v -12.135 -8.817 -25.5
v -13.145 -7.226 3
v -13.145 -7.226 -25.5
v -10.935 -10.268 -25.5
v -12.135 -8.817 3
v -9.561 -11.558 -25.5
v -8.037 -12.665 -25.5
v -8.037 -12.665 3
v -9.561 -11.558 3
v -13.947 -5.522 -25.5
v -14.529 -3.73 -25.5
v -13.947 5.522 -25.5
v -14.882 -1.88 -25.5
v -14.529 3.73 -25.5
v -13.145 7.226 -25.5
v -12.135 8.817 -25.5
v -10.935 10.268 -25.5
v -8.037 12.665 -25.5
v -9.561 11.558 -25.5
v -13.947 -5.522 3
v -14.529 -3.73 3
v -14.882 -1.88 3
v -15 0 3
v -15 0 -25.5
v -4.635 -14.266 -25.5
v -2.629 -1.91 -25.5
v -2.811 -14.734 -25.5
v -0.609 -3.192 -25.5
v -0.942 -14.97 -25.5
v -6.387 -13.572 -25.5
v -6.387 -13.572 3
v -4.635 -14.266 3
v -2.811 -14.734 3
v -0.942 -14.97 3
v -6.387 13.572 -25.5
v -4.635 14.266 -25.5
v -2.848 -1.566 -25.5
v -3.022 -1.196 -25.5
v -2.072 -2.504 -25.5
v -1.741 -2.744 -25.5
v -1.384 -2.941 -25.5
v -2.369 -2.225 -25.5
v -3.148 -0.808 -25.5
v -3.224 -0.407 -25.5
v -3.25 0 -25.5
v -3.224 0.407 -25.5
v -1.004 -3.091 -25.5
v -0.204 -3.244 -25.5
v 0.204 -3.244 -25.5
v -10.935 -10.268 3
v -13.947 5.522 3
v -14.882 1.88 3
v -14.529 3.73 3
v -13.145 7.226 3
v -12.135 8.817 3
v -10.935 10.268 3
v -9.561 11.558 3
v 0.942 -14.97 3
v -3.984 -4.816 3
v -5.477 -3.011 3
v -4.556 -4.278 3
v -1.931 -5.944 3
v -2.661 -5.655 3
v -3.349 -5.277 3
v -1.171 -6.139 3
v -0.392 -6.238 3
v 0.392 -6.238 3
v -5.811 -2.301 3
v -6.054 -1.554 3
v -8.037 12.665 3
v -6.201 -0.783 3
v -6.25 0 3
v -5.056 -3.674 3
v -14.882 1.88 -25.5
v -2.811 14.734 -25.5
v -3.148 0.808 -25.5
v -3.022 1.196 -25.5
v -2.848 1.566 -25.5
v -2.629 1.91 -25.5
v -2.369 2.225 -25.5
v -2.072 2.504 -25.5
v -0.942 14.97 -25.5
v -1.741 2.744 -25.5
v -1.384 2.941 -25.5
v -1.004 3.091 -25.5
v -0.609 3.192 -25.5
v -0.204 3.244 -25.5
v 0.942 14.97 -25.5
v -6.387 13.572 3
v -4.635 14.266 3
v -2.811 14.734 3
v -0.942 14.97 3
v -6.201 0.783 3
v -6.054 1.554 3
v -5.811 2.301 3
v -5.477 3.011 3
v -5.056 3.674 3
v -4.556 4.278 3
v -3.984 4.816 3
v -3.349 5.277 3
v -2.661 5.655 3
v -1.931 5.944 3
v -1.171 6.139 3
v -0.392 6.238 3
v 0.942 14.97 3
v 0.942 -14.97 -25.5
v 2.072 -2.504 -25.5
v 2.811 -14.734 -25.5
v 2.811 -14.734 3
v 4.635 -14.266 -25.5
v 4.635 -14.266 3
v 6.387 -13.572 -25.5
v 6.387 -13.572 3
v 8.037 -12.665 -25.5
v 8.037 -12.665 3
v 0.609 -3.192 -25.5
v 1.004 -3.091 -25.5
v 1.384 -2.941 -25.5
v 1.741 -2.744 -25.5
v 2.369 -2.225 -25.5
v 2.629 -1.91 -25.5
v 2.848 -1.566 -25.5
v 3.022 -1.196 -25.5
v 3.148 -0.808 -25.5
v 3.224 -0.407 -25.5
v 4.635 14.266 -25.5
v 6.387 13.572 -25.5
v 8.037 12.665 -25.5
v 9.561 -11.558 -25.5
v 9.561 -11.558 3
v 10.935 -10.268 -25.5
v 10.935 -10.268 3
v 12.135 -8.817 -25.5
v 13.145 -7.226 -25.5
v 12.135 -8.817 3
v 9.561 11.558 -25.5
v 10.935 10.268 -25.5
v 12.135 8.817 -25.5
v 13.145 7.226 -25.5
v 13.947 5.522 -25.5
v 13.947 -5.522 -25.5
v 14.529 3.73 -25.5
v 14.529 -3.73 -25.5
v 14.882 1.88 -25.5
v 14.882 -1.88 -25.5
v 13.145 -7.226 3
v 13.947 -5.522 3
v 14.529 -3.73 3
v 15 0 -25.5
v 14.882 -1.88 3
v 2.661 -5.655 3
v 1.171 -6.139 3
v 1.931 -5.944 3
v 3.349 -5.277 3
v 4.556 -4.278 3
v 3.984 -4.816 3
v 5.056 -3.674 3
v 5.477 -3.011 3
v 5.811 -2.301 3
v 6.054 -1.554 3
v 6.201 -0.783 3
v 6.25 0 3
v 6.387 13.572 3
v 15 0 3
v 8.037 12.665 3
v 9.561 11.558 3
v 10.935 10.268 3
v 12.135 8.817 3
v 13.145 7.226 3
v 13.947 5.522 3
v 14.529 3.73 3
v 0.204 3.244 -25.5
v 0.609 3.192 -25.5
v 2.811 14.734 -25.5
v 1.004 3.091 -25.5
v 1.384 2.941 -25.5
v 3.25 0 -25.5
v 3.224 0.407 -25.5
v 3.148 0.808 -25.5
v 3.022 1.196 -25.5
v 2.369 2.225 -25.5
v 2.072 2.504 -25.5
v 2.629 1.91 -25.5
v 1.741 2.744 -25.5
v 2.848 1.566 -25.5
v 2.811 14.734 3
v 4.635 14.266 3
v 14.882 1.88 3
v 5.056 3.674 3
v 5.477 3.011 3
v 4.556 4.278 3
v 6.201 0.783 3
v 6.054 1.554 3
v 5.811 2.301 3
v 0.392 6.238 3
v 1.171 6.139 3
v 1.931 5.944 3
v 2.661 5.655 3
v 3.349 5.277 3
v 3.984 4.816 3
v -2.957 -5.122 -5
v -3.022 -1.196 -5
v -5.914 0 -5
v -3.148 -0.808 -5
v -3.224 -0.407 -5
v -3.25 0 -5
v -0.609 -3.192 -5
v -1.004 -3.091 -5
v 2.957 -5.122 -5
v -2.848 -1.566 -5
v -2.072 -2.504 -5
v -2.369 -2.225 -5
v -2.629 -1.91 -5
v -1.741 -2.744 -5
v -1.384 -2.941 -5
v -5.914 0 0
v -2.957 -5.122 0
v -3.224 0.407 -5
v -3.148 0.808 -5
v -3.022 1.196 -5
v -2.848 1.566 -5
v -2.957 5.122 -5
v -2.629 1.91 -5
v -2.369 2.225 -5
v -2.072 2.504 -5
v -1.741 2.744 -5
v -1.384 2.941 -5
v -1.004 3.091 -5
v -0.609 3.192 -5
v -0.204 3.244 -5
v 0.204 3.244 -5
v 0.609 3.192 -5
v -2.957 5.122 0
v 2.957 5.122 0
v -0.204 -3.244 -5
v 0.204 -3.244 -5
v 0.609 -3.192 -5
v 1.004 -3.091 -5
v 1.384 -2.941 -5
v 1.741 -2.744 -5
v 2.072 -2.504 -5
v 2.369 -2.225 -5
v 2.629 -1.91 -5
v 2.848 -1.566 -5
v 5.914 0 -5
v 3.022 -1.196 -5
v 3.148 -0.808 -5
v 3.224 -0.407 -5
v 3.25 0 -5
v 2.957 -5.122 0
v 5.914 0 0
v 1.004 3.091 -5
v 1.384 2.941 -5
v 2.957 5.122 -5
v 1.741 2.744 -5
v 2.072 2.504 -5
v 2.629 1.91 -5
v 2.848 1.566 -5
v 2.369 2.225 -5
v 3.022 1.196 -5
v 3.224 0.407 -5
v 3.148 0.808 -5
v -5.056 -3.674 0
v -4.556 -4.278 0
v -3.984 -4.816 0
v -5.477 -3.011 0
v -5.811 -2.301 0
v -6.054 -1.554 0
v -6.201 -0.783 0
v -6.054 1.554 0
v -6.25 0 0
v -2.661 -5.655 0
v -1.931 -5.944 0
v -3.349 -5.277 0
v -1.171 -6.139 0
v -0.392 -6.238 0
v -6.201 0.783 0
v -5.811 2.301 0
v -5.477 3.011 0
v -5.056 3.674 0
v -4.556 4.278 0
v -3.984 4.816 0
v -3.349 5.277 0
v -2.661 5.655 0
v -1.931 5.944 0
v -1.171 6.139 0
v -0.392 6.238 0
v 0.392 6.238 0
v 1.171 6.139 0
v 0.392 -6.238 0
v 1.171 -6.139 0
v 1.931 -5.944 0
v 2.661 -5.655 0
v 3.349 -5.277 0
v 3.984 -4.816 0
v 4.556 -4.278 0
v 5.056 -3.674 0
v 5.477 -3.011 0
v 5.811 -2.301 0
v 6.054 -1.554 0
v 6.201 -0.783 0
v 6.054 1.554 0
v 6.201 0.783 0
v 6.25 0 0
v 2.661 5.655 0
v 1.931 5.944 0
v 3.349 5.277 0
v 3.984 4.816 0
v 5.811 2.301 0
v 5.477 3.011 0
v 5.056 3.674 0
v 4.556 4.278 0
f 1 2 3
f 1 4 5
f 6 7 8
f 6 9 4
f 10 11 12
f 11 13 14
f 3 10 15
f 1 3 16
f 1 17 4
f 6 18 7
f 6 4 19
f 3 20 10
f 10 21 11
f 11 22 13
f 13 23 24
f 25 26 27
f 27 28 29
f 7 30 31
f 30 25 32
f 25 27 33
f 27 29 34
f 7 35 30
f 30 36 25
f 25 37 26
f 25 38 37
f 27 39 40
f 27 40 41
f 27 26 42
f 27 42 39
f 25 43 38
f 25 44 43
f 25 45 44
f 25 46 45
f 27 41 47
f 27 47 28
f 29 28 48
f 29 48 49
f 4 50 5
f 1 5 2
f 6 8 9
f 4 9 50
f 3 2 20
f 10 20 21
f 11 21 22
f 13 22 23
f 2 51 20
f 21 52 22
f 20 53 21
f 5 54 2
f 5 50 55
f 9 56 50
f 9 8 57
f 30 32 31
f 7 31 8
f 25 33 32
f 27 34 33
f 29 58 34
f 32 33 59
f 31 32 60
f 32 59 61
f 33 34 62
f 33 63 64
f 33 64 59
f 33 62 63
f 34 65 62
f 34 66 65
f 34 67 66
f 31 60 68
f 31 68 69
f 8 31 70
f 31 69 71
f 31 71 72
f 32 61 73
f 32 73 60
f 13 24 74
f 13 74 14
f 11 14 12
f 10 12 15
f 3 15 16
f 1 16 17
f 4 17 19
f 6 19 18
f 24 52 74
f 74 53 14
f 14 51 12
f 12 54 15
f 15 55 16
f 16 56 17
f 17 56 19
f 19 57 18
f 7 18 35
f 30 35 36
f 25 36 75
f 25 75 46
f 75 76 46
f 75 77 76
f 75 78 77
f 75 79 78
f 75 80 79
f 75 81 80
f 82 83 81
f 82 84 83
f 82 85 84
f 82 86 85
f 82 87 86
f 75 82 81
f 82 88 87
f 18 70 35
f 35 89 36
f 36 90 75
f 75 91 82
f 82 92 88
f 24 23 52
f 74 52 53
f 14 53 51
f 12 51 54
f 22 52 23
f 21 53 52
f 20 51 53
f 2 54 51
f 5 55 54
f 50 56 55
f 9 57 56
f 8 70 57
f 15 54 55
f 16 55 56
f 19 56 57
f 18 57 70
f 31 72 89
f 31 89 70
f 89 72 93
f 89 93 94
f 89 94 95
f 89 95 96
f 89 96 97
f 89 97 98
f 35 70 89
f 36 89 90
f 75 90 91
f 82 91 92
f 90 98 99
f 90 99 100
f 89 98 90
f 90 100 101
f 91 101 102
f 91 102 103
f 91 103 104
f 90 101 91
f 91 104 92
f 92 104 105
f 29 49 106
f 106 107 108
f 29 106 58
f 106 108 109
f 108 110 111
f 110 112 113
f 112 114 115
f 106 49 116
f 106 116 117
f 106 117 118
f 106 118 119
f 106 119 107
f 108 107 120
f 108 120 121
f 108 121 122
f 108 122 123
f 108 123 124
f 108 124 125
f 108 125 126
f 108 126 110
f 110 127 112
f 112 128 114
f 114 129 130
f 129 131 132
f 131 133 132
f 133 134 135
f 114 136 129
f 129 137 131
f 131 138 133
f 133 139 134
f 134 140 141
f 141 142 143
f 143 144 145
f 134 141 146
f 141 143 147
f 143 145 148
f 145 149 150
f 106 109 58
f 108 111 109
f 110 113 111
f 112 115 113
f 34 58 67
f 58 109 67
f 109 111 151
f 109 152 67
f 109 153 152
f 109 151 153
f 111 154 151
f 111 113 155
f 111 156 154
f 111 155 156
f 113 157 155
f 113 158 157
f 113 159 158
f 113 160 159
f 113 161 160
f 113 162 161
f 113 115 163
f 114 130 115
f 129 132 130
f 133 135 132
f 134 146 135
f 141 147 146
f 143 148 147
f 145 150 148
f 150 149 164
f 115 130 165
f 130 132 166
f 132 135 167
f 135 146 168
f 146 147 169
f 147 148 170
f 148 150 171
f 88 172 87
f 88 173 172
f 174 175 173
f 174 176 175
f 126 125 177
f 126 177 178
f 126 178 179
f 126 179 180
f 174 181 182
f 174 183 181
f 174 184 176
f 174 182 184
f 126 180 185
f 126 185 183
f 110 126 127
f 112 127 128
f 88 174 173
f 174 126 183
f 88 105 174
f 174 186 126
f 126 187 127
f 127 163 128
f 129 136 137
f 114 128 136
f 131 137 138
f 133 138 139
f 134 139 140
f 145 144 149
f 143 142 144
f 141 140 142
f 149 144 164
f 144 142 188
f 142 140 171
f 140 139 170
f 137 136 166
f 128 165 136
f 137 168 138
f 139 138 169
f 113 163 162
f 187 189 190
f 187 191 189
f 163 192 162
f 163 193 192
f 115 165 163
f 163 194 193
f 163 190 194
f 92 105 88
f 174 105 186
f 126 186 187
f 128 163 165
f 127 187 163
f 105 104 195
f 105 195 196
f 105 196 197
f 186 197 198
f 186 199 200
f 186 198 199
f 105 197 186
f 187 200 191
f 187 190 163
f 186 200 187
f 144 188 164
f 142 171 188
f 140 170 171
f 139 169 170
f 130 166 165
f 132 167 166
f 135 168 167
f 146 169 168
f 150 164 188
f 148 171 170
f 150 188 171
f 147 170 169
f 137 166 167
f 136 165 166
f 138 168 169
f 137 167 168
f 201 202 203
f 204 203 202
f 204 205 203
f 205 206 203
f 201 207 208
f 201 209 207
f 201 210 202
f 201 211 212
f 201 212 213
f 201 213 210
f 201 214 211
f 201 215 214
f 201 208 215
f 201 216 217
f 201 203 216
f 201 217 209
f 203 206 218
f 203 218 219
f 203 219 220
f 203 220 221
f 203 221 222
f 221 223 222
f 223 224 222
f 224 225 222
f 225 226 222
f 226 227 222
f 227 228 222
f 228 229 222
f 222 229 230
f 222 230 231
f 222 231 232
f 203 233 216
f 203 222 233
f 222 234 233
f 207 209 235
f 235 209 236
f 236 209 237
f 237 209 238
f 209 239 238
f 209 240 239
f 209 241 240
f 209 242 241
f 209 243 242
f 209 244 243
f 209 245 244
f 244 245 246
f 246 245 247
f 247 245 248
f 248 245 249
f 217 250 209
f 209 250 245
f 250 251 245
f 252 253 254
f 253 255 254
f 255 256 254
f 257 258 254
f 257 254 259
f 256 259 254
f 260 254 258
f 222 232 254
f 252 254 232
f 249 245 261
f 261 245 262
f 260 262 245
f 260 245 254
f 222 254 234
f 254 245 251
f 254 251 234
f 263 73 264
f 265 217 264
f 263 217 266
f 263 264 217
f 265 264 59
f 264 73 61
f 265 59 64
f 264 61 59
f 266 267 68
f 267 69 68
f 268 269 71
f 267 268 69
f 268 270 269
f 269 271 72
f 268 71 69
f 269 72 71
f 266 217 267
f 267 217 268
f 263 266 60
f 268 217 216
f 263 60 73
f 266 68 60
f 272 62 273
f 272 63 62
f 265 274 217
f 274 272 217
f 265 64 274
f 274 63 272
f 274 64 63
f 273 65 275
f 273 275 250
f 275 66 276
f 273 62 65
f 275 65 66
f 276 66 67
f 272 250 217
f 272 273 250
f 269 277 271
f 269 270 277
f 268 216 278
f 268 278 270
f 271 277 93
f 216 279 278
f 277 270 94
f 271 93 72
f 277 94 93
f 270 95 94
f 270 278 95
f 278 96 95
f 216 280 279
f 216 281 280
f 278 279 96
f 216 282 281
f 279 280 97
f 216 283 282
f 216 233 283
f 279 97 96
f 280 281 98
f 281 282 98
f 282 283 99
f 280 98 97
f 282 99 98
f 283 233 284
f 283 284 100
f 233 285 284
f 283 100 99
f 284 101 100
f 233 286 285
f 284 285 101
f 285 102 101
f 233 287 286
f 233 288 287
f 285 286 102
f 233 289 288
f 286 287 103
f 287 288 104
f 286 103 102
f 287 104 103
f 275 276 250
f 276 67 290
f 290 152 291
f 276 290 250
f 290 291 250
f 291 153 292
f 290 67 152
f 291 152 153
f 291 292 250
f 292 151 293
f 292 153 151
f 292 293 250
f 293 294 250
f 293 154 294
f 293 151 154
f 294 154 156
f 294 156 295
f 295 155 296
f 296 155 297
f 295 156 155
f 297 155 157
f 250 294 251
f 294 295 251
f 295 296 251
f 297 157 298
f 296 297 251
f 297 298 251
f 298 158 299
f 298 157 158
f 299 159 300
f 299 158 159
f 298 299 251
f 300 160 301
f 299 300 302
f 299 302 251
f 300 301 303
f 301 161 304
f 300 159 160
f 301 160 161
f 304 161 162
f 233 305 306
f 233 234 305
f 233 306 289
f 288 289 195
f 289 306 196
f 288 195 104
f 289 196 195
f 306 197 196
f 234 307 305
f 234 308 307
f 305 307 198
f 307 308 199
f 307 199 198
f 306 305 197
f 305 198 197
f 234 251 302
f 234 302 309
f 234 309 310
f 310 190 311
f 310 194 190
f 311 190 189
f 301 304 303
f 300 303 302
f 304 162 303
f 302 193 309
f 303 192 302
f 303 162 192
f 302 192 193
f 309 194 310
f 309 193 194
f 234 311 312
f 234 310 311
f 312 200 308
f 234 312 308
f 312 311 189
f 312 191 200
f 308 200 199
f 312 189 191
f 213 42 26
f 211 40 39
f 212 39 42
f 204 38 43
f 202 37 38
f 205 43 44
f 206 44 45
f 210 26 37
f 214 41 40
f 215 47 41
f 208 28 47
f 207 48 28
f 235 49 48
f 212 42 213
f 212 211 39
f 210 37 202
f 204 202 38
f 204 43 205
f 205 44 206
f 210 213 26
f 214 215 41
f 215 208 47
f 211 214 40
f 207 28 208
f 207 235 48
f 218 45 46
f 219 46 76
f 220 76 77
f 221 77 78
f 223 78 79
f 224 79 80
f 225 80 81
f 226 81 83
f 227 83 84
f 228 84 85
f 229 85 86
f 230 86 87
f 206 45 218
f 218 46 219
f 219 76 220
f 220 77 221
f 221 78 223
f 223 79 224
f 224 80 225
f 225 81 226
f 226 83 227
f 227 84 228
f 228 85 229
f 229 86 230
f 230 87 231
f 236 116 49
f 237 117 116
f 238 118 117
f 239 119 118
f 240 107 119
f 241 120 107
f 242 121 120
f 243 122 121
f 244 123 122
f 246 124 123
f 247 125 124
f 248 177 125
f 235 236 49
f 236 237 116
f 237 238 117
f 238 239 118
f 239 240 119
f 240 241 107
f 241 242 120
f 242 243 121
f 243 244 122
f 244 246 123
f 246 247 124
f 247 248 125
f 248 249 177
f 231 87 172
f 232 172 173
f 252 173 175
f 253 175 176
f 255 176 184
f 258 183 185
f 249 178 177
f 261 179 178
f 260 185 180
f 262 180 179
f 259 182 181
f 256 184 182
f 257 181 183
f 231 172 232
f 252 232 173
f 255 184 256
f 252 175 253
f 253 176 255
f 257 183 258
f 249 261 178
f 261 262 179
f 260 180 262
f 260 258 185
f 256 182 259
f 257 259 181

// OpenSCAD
$fn = 50;

difference() {
	union() {
		translate(v = [0, 0, -25.5]) {
			cylinder(h = 28.5, r = 15.0);
		}
		#translate(v = [0, 0, -27.0]) {
			cylinder(h = 27, r = 2.875);
		}
	}
	union() {
		translate(v = [0, 0, 0]) {
			rotate(a = [0, 0, 0]) {
				difference() {
					union() {
						translate(v = [0, 0, -5]) {
							linear_extrude(height = 5) {
								polygon(points = [[5.914249999999999, 0.0], [2.957125, 5.1218907443321156], [-2.9571249999999982, 5.1218907443321156], [-5.914249999999999, 7.242867331857232e-16], [-2.9571250000000022, -5.121890744332115], [2.9571249999999956, -5.121890744332118]]);
							}
						}
					}
					union();
				}
			}
		}
		#cylinder(h = 3, r = 6.25);
		#translate(v = [0, 0, -100.0]) {
			cylinder(h = 200, r = 3.25);
		}
	}
}
